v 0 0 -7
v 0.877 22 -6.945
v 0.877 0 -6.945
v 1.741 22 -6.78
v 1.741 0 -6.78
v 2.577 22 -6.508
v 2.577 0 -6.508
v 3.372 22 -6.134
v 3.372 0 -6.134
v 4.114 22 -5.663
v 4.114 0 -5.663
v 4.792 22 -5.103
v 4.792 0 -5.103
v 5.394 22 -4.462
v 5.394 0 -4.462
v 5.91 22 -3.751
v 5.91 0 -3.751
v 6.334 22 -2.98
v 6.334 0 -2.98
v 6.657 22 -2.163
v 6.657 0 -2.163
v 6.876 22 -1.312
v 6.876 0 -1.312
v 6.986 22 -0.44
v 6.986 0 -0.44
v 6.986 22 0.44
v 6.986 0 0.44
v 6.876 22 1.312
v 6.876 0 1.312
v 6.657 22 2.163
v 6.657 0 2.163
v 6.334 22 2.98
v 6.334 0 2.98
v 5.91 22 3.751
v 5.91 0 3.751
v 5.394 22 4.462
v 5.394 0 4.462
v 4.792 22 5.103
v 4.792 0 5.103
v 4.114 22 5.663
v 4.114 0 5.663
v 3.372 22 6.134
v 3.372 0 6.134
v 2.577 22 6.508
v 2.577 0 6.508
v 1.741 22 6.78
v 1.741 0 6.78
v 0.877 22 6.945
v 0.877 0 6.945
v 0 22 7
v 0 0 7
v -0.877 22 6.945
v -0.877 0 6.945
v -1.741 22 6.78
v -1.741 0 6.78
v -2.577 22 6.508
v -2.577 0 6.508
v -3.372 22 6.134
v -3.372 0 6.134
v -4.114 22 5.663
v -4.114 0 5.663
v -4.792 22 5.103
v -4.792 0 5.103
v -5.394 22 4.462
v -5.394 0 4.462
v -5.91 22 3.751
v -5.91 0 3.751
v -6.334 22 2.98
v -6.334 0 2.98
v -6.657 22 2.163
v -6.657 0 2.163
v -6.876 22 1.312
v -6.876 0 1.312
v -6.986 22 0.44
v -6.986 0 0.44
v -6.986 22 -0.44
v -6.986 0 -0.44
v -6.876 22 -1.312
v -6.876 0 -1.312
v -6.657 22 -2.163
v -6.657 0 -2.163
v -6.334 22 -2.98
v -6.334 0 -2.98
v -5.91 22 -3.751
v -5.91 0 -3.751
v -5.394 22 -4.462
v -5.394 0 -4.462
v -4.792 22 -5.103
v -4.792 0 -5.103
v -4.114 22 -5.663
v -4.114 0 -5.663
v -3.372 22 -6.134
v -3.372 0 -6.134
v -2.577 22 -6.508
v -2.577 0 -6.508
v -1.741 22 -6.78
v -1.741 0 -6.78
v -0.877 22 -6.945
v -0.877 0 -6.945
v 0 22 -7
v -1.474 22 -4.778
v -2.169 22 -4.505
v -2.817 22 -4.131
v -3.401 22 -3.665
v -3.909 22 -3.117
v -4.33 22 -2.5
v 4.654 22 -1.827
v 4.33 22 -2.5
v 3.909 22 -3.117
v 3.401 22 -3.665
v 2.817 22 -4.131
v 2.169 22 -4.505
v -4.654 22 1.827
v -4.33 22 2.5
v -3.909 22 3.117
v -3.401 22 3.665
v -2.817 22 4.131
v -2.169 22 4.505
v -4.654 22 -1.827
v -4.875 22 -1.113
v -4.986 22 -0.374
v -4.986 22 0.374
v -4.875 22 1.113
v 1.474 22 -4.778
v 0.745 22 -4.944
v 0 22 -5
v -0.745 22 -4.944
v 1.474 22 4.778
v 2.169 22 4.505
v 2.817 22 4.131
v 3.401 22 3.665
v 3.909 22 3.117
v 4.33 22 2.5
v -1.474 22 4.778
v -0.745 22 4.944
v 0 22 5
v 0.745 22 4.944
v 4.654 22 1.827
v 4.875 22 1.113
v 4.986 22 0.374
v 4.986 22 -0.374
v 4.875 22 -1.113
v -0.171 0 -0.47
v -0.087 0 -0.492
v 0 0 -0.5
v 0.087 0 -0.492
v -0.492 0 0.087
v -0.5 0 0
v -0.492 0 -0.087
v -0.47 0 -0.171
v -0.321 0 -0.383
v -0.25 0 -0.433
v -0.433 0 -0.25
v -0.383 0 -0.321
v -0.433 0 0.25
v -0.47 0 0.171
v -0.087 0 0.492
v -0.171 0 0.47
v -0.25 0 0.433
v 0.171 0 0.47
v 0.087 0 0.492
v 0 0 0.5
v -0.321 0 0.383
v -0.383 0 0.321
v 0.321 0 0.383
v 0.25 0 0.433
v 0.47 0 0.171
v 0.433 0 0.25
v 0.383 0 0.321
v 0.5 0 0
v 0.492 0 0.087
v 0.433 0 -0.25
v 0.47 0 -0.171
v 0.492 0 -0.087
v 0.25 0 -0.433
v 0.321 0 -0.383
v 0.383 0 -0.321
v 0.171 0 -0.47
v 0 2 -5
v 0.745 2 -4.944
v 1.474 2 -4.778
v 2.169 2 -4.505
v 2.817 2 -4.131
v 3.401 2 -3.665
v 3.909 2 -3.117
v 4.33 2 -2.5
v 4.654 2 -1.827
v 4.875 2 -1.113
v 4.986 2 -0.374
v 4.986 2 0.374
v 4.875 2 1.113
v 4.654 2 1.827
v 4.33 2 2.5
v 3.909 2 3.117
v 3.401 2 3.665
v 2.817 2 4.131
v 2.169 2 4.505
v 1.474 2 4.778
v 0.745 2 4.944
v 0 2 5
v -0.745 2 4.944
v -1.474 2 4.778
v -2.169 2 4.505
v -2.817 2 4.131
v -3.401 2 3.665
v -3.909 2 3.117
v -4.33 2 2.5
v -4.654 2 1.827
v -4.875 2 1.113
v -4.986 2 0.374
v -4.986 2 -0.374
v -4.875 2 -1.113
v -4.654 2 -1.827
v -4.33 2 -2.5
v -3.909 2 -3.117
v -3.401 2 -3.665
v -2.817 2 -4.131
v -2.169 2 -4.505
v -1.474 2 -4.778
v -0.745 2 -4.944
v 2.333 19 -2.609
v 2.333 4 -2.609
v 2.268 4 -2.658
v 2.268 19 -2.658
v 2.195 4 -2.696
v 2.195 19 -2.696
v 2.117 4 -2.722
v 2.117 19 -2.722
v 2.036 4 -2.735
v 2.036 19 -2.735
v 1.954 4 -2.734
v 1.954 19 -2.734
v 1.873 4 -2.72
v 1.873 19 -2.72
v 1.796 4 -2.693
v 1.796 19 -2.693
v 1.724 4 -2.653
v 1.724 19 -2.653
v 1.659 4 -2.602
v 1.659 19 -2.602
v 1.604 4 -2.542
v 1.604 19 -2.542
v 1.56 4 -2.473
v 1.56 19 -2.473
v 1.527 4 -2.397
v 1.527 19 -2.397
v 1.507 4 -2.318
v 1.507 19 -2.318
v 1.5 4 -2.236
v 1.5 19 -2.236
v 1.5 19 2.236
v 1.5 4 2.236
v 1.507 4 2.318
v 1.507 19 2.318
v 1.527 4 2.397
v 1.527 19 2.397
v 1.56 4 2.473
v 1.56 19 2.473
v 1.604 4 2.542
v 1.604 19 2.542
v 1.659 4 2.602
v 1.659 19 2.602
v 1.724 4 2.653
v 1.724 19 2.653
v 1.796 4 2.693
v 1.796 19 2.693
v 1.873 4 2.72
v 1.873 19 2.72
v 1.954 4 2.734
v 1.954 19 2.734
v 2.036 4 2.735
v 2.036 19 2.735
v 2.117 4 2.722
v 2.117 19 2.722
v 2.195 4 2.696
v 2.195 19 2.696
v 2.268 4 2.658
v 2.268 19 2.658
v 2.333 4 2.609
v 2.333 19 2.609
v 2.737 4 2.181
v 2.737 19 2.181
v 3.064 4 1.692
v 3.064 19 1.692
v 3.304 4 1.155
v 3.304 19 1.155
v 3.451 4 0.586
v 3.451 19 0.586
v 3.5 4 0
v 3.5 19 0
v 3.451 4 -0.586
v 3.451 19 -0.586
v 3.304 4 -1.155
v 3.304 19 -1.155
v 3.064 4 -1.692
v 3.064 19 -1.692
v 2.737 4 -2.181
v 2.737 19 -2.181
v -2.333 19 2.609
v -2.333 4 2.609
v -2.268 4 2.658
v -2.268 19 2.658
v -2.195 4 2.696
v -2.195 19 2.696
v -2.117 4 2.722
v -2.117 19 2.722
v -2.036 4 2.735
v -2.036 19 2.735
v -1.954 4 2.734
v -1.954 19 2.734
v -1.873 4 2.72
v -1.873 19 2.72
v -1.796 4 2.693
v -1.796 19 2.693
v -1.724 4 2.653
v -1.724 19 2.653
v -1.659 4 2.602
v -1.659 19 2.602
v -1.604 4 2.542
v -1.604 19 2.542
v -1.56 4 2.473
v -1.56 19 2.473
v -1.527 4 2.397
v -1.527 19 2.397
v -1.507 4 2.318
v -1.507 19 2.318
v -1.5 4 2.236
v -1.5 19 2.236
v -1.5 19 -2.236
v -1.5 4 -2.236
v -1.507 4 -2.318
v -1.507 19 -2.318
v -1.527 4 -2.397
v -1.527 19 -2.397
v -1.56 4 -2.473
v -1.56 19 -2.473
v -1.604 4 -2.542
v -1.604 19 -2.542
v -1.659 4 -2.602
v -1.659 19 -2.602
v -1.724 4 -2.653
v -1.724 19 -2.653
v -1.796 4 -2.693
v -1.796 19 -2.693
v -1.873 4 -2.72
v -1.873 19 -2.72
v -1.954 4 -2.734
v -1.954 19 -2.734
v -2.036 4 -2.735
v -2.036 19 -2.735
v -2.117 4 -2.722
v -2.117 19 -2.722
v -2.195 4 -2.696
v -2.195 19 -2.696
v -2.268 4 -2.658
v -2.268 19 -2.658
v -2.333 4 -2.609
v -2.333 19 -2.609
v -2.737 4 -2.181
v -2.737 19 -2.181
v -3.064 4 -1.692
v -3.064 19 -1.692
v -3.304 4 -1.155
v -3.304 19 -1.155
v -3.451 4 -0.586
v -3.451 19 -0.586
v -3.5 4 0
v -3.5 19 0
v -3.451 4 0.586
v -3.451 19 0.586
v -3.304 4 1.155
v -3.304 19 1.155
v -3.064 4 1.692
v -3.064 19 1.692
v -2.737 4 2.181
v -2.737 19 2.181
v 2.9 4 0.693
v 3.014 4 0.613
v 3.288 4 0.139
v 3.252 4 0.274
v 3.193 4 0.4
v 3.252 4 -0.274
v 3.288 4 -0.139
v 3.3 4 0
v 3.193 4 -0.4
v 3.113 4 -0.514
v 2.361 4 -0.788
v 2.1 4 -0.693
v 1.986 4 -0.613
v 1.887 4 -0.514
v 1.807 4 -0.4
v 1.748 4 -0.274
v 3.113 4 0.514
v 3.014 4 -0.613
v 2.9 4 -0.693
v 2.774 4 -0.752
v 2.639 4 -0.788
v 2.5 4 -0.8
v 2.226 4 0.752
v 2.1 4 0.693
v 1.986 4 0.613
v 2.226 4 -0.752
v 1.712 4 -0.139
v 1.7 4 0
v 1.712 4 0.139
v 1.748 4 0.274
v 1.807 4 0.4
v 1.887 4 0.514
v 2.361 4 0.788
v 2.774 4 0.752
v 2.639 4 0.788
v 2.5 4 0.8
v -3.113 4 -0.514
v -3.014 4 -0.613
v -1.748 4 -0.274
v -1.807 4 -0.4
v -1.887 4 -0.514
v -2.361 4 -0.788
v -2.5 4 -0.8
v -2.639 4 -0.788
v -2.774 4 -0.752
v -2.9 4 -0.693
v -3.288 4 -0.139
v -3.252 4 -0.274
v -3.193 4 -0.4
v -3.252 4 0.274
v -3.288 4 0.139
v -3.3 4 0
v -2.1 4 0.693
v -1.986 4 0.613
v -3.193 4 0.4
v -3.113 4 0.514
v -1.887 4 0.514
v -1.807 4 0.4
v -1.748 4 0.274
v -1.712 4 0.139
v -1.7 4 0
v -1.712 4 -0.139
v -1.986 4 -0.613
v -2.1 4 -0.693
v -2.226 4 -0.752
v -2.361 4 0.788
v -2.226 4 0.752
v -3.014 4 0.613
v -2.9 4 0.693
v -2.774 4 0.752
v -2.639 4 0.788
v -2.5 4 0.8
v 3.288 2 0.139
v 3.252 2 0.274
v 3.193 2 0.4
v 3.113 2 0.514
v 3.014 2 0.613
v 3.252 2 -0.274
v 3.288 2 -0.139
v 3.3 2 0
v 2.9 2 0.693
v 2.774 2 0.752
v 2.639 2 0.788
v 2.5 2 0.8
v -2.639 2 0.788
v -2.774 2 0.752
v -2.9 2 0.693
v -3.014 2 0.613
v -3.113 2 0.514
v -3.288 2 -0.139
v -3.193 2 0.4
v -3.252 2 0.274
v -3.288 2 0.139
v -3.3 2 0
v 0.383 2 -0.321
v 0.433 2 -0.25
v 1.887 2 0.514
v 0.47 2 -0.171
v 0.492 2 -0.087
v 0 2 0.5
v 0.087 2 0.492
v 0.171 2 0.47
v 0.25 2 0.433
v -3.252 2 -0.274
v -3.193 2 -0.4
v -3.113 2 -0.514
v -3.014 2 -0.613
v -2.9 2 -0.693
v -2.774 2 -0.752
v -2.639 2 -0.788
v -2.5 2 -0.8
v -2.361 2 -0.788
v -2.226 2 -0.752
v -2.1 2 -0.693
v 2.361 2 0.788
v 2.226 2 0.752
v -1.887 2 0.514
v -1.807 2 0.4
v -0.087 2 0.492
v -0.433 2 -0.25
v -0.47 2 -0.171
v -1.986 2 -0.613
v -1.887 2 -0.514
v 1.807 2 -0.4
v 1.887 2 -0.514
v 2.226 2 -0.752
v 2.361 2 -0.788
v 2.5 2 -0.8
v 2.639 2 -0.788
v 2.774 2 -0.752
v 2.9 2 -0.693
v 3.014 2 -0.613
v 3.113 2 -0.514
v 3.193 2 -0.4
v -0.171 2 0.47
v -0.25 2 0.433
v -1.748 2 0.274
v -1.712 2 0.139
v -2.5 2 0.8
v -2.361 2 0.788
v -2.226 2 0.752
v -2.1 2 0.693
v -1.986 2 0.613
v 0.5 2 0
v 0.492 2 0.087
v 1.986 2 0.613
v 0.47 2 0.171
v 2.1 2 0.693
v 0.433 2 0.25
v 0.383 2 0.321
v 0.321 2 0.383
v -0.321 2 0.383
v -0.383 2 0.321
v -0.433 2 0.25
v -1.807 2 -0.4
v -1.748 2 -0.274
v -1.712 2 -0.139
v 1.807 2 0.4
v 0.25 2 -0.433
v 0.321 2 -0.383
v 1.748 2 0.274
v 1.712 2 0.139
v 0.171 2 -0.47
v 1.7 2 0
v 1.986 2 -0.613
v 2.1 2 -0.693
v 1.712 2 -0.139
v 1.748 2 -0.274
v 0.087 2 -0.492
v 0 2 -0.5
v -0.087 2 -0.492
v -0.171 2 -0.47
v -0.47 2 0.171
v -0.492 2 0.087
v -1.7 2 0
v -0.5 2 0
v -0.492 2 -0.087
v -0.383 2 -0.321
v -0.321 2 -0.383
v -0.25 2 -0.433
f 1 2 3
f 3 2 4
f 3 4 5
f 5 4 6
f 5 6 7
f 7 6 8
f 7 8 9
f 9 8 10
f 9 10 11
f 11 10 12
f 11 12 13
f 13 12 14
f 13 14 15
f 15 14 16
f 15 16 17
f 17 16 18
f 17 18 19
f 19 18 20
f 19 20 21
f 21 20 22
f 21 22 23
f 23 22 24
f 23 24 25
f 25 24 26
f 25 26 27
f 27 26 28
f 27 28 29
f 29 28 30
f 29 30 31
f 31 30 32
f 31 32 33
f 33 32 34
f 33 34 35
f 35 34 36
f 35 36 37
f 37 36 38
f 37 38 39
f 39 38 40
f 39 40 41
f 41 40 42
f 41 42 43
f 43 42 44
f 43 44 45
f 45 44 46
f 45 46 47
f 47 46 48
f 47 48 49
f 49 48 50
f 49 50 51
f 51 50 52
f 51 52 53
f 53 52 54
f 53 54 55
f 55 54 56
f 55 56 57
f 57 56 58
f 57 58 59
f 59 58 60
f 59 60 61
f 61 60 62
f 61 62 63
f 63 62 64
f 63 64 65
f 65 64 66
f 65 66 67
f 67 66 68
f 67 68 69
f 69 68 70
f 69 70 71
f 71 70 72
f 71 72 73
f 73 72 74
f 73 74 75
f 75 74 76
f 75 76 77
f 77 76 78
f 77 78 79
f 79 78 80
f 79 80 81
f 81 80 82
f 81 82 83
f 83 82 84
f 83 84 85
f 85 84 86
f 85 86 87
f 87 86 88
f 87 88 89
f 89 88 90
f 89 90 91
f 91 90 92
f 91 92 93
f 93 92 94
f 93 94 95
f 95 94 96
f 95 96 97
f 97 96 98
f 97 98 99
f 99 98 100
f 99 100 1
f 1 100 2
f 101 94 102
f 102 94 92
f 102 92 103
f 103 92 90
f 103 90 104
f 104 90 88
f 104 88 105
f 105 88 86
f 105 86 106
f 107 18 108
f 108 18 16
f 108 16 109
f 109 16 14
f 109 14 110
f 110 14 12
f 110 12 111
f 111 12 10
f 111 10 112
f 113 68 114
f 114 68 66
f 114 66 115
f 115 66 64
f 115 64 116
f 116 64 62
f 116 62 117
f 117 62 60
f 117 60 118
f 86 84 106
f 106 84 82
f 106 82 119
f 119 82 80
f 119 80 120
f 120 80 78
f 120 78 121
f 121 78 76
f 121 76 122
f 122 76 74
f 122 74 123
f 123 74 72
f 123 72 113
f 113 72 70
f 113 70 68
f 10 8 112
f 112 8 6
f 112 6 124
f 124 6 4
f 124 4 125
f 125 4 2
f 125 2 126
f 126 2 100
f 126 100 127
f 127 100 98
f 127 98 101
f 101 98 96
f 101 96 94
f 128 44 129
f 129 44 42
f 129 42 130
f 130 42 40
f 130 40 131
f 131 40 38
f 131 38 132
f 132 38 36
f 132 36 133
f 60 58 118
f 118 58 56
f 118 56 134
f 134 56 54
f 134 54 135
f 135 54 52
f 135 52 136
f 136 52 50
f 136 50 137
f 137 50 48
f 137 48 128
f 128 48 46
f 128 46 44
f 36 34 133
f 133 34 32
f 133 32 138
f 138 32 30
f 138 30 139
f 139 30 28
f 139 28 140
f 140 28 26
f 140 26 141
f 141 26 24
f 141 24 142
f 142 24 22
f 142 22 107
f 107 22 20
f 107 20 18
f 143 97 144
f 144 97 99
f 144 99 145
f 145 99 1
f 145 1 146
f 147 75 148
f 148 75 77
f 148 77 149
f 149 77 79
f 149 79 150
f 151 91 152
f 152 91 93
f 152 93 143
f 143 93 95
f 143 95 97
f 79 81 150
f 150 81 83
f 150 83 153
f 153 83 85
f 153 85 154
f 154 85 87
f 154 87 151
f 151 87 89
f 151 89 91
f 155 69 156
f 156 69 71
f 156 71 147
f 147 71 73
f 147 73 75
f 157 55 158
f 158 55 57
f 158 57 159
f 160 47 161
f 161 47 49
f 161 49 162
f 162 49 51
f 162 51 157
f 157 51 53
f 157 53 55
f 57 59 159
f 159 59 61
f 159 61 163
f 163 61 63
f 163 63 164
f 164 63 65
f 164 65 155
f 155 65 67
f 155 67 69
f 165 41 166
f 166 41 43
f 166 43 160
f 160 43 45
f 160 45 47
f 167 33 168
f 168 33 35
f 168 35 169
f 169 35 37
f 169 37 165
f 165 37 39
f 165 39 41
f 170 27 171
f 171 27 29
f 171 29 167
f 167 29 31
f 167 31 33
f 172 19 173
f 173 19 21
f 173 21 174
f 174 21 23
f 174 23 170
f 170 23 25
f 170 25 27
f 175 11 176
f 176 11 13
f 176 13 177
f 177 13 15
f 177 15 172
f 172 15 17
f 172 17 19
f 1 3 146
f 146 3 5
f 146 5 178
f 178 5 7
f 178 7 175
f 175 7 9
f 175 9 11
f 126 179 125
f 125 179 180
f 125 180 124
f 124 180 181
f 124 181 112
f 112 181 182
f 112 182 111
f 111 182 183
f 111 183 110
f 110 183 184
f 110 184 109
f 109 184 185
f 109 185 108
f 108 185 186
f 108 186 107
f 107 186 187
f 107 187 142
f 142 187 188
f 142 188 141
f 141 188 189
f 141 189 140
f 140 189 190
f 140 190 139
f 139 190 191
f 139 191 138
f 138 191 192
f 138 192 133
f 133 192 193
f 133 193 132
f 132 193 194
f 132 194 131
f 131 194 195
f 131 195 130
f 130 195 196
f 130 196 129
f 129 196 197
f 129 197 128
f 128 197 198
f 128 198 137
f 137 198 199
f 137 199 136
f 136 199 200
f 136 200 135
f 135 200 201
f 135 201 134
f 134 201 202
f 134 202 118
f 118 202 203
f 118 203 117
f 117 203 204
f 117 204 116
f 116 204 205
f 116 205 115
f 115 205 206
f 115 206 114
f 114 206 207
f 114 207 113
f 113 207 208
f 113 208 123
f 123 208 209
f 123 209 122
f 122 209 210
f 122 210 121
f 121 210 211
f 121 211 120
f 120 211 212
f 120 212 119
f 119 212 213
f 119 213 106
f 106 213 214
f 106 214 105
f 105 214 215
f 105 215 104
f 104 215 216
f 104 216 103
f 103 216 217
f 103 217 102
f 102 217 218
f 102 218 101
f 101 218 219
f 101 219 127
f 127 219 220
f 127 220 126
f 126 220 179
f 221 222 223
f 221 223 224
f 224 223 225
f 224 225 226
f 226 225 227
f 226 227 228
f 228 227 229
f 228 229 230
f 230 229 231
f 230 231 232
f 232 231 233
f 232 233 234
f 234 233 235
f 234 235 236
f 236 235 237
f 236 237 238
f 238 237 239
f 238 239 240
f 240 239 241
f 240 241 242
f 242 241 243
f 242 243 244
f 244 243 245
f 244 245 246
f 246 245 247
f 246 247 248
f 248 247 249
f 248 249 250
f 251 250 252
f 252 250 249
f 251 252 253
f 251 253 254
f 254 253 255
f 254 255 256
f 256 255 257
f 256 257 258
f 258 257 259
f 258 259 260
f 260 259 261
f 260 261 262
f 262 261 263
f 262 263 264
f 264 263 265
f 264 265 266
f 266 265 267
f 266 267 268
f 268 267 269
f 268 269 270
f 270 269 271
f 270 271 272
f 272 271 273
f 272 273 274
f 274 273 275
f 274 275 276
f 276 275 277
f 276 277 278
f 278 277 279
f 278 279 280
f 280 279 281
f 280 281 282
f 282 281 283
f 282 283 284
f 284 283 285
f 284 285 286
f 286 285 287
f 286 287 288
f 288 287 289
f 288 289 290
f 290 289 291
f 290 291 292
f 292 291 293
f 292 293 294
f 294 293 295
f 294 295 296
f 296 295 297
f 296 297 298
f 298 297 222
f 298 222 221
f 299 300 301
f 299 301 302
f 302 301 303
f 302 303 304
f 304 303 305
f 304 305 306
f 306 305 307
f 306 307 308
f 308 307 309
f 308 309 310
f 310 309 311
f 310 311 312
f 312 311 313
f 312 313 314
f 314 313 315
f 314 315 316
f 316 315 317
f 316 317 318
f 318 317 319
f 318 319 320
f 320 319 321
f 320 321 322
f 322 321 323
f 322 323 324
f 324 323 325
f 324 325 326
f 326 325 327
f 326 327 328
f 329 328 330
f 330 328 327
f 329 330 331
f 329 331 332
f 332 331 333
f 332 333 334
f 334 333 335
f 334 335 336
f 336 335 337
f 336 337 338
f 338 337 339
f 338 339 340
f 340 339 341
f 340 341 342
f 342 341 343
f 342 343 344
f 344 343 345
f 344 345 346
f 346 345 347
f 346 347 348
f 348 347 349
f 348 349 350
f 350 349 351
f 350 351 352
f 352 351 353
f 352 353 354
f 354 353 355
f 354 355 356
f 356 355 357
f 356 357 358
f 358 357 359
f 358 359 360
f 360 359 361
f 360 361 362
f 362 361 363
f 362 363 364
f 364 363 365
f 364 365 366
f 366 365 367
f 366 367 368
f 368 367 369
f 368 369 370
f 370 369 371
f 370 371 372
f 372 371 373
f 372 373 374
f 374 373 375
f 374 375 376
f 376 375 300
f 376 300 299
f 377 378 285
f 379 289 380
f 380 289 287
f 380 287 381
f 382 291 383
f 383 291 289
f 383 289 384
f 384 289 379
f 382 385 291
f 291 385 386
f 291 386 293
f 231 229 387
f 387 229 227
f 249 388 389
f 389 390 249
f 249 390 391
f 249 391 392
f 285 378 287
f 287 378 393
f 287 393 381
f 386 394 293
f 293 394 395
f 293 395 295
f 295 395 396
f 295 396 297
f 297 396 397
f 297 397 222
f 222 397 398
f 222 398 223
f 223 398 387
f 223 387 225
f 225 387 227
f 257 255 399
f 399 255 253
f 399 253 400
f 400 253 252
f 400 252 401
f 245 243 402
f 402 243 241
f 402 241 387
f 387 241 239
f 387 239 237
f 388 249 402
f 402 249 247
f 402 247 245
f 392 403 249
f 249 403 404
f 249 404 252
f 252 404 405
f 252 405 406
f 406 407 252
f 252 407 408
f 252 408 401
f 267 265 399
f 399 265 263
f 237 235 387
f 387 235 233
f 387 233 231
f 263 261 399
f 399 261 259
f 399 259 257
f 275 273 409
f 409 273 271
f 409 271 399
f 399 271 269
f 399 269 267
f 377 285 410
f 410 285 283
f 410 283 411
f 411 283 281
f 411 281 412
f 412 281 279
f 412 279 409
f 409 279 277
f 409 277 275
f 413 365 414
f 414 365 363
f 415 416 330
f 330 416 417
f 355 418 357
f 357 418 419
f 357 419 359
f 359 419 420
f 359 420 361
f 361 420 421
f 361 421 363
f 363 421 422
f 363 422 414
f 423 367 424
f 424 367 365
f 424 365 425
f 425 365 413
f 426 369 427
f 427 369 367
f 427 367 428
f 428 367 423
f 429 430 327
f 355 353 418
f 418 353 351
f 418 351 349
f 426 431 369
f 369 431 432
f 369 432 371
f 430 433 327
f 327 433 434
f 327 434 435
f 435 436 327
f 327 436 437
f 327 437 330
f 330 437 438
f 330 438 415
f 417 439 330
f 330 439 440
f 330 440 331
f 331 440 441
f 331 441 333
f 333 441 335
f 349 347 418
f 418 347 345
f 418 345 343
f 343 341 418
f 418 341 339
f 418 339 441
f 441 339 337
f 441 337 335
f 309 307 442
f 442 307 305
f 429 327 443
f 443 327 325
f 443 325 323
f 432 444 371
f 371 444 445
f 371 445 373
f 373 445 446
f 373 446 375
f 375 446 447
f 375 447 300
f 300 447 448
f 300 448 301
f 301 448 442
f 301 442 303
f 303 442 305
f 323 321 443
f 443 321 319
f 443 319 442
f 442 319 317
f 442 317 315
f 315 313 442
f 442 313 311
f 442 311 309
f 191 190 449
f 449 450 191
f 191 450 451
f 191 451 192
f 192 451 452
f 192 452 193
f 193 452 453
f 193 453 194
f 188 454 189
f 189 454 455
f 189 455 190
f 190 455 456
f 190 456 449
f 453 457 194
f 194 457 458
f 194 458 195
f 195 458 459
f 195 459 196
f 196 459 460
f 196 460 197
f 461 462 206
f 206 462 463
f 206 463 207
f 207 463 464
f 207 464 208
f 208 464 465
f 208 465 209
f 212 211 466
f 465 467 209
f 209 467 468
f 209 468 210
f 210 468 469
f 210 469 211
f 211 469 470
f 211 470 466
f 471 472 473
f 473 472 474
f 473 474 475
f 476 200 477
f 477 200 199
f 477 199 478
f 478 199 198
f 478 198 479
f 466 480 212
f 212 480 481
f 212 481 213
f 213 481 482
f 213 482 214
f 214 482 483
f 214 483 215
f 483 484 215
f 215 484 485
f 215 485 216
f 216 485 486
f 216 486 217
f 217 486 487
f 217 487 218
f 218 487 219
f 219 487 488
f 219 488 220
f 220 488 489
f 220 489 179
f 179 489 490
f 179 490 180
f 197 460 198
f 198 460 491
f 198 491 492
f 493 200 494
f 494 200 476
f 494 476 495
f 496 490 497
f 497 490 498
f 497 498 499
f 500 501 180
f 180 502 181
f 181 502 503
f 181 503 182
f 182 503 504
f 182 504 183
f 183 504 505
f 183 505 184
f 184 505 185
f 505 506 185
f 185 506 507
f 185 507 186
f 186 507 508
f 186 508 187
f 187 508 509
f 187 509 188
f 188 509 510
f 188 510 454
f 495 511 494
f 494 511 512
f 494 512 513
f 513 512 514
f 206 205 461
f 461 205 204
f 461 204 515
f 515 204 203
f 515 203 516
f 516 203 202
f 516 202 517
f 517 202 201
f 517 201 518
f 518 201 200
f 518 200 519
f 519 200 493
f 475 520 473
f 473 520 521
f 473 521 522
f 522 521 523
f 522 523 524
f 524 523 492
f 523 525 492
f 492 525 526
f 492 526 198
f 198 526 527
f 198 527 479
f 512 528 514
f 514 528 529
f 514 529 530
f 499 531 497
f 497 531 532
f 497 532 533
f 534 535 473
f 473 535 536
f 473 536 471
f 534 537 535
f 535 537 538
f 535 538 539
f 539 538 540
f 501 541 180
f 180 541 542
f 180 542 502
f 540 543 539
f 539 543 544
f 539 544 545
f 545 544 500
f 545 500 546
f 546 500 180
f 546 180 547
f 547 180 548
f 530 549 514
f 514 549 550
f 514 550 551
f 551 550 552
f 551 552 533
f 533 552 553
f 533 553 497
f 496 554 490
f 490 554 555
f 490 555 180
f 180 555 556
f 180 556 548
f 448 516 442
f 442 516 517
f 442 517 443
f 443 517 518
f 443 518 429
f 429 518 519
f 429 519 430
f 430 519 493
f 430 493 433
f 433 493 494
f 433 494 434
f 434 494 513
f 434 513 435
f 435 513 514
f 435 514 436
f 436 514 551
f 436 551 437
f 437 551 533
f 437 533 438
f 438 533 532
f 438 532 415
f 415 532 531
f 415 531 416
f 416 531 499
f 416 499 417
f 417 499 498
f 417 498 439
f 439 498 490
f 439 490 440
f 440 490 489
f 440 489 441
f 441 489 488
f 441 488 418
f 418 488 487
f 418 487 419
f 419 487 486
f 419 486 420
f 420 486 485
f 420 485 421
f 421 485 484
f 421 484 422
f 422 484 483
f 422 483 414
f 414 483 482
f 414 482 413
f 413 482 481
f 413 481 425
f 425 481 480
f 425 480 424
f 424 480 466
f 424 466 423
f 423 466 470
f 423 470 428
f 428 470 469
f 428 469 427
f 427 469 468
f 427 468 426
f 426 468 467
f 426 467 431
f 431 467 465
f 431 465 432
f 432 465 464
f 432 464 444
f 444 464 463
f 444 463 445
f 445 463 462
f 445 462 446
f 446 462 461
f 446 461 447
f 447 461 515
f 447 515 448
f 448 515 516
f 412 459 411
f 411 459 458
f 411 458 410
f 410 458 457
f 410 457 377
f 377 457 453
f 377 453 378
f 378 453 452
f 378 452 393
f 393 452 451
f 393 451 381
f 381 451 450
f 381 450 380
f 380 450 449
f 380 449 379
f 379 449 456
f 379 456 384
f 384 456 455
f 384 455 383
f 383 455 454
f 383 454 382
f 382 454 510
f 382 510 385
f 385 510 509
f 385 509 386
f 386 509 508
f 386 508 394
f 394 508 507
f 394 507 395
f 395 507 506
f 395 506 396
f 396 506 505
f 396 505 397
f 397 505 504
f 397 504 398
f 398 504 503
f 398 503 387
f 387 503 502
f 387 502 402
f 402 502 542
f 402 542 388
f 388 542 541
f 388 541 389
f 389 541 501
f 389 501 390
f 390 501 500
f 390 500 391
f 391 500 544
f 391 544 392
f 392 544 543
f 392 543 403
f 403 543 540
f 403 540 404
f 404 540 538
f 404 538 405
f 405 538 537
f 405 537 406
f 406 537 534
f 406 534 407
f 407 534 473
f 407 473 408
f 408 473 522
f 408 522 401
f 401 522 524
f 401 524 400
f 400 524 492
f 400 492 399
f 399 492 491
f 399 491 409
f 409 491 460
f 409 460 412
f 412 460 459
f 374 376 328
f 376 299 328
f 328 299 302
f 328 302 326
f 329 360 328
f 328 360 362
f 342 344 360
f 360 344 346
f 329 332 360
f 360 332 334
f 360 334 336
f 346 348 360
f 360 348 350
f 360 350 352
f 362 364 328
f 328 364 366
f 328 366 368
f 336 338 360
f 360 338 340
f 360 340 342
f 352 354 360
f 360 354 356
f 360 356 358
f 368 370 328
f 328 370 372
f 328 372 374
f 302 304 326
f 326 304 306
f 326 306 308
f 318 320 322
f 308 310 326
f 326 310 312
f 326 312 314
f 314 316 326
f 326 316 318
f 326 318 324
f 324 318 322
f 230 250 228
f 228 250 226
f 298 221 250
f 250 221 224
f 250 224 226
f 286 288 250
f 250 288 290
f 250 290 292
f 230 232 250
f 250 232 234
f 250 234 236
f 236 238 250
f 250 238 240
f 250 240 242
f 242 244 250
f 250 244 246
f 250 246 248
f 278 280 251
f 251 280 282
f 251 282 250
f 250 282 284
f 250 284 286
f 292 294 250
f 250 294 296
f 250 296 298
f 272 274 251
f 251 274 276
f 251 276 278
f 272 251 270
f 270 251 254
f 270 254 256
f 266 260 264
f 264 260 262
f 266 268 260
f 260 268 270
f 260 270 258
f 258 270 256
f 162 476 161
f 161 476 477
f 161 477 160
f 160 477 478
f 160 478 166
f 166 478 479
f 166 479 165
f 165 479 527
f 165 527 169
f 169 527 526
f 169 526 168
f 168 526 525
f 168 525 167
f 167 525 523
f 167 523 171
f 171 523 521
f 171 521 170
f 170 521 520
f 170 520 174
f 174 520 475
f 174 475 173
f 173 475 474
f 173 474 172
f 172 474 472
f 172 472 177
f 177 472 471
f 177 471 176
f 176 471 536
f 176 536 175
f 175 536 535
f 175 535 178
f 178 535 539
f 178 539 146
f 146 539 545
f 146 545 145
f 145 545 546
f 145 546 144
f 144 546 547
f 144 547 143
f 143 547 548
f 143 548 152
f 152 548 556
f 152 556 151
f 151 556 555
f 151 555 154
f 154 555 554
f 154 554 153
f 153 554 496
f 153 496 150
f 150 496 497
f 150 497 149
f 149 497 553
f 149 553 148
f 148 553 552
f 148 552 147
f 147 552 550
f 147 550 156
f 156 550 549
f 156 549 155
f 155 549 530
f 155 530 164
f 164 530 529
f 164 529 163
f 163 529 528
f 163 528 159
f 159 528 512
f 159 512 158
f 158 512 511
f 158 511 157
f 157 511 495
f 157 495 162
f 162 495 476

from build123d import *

# Parameters (mm, degrees)
SKETCH1_R           = 7
BOSS_EXTRUDE1_DEPTH = 22
CAVITY1_START       = 2
CAVITY1_OUTLINE_R   = 5
CAVITY1_DEPTH       = 20
CAVITY1_START_2     = 19
CAVITY1_2_DEPTH     = 3
CAVITY1_3_OUTLINE_R = 0.8
CAVITY1_3_DEPTH     = 2
SKETCH2_R           = 0.5
CUT_EXTRUDE1_DEPTH  = 23.315913604


# Read off the part's stored shape, not the designer's step: Cavity1
with BuildPart() as part:
    # Sketch1 → Boss-Extrude1 (new body)
    with BuildSketch(Plane(origin=(0, 0, 0), x_dir=(1, 0, 0), z_dir=(0, 1, 0))):
        with Locations(Location((0, 0, 0), (0, 0, 270))):
            Circle(SKETCH1_R)
    extrude(amount=BOSS_EXTRUDE1_DEPTH)

    # Cavity1 outline → Cavity1 (cut)
    with BuildSketch(Plane(origin=(0, 0, 0), x_dir=(1, 0, 0), z_dir=(0, 1, 0)).offset(CAVITY1_START)):
        Circle(CAVITY1_OUTLINE_R)
        with BuildLine():
            ThreePointArc((-1.5, -2.236067977), (-1.795875854, -2.692503442), (-2.333333333, -2.608745974))
            ThreePointArc((-2.333333333, -2.608745974), (-3.5, 0), (-2.333333333, 2.608745974))
            ThreePointArc((-2.333333333, 2.608745974), (-1.795875854, 2.692503442), (-1.5, 2.236067977))
            Line((-1.5, 2.236067977), (-1.5, -2.236067977))
        make_face(mode=Mode.SUBTRACT)
        with BuildLine():
            Line((1.5, -2.236067977), (1.5, 2.236067977))
            ThreePointArc((1.5, 2.236067977), (1.795875854, 2.692503442), (2.333333333, 2.608745974))
            ThreePointArc((2.333333333, 2.608745974), (3.5, 0), (2.333333333, -2.608745974))
            ThreePointArc((2.333333333, -2.608745974), (1.795875854, -2.692503442), (1.5, -2.236067977))
        make_face(mode=Mode.SUBTRACT)
    extrude(amount=CAVITY1_DEPTH, mode=Mode.SUBTRACT)

    # Cavity1 2 outline → Cavity1 2 (cut)
    with BuildSketch(Plane(origin=(0, 0, 0), x_dir=(1, 0, 0), z_dir=(0, 1, 0)).offset(CAVITY1_START_2)):
        with BuildLine():
            ThreePointArc((2.333333333, 2.608745974), (1.795875854, 2.692503442), (1.5, 2.236067977))
            Line((1.5, 2.236067977), (1.5, -2.236067977))
            ThreePointArc((1.5, -2.236067977), (1.795875854, -2.692503442), (2.333333333, -2.608745974))
            ThreePointArc((2.333333333, -2.608745974), (3.5, 0), (2.333333333, 2.608745974))
        make_face()
        with BuildLine():
            ThreePointArc((-2.333333333, 2.608745974), (-3.5, 0), (-2.333333333, -2.608745974))
            ThreePointArc((-2.333333333, -2.608745974), (-1.795875854, -2.692503442), (-1.5, -2.236067977))
            Line((-1.5, -2.236067977), (-1.5, 2.236067977))
            ThreePointArc((-1.5, 2.236067977), (-1.795875854, 2.692503442), (-2.333333333, 2.608745974))
        make_face()
    extrude(amount=CAVITY1_2_DEPTH, mode=Mode.SUBTRACT)

    # Cavity1 3 outline → Cavity1 3 (cut)
    # profile 1 of 2: a face of its own
    with BuildSketch(Plane(origin=(0, 0, 0), x_dir=(1, 0, 0), z_dir=(0, 1, 0)).offset(CAVITY1_START)):
        with BuildLine():
            ThreePointArc((2.333333333, 2.608745974), (1.795875854, 2.692503442), (1.5, 2.236067977))
            Line((1.5, 2.236067977), (1.5, -2.236067977))
            ThreePointArc((1.5, -2.236067977), (1.795875854, -2.692503442), (2.333333333, -2.608745974))
            ThreePointArc((2.333333333, -2.608745974), (3.5, 0), (2.333333333, 2.608745974))
        make_face()
        with Locations((2.5, 0)):
            Circle(CAVITY1_3_OUTLINE_R, mode=Mode.SUBTRACT)
    # profile 2 of 2: a face of its own
    with BuildSketch(Plane(origin=(0, 0, 0), x_dir=(1, 0, 0), z_dir=(0, 1, 0)).offset(CAVITY1_START)):
        with BuildLine():
            ThreePointArc((-2.333333333, 2.608745974), (-3.5, 0), (-2.333333333, -2.608745974))
            ThreePointArc((-2.333333333, -2.608745974), (-1.795875854, -2.692503442), (-1.5, -2.236067977))
            Line((-1.5, -2.236067977), (-1.5, 2.236067977))
            ThreePointArc((-1.5, 2.236067977), (-1.795875854, 2.692503442), (-2.333333333, 2.608745974))
        make_face()
        with Locations((-2.5, 0)):
            Circle(CAVITY1_3_OUTLINE_R, mode=Mode.SUBTRACT)
    extrude(amount=CAVITY1_3_DEPTH, mode=Mode.SUBTRACT)

    # Sketch2 → Cut-Extrude1 (cut, through all)
    with BuildSketch(Plane(origin=(0, 2, 0), x_dir=(1, 0, 0), z_dir=(0, 1, 0))):
        with Locations(Location((0, 0, 0), (0, 0, 270))):
            Circle(SKETCH2_R)
    extrude(amount=-CUT_EXTRUDE1_DEPTH, mode=Mode.SUBTRACT)


solid = part.part
